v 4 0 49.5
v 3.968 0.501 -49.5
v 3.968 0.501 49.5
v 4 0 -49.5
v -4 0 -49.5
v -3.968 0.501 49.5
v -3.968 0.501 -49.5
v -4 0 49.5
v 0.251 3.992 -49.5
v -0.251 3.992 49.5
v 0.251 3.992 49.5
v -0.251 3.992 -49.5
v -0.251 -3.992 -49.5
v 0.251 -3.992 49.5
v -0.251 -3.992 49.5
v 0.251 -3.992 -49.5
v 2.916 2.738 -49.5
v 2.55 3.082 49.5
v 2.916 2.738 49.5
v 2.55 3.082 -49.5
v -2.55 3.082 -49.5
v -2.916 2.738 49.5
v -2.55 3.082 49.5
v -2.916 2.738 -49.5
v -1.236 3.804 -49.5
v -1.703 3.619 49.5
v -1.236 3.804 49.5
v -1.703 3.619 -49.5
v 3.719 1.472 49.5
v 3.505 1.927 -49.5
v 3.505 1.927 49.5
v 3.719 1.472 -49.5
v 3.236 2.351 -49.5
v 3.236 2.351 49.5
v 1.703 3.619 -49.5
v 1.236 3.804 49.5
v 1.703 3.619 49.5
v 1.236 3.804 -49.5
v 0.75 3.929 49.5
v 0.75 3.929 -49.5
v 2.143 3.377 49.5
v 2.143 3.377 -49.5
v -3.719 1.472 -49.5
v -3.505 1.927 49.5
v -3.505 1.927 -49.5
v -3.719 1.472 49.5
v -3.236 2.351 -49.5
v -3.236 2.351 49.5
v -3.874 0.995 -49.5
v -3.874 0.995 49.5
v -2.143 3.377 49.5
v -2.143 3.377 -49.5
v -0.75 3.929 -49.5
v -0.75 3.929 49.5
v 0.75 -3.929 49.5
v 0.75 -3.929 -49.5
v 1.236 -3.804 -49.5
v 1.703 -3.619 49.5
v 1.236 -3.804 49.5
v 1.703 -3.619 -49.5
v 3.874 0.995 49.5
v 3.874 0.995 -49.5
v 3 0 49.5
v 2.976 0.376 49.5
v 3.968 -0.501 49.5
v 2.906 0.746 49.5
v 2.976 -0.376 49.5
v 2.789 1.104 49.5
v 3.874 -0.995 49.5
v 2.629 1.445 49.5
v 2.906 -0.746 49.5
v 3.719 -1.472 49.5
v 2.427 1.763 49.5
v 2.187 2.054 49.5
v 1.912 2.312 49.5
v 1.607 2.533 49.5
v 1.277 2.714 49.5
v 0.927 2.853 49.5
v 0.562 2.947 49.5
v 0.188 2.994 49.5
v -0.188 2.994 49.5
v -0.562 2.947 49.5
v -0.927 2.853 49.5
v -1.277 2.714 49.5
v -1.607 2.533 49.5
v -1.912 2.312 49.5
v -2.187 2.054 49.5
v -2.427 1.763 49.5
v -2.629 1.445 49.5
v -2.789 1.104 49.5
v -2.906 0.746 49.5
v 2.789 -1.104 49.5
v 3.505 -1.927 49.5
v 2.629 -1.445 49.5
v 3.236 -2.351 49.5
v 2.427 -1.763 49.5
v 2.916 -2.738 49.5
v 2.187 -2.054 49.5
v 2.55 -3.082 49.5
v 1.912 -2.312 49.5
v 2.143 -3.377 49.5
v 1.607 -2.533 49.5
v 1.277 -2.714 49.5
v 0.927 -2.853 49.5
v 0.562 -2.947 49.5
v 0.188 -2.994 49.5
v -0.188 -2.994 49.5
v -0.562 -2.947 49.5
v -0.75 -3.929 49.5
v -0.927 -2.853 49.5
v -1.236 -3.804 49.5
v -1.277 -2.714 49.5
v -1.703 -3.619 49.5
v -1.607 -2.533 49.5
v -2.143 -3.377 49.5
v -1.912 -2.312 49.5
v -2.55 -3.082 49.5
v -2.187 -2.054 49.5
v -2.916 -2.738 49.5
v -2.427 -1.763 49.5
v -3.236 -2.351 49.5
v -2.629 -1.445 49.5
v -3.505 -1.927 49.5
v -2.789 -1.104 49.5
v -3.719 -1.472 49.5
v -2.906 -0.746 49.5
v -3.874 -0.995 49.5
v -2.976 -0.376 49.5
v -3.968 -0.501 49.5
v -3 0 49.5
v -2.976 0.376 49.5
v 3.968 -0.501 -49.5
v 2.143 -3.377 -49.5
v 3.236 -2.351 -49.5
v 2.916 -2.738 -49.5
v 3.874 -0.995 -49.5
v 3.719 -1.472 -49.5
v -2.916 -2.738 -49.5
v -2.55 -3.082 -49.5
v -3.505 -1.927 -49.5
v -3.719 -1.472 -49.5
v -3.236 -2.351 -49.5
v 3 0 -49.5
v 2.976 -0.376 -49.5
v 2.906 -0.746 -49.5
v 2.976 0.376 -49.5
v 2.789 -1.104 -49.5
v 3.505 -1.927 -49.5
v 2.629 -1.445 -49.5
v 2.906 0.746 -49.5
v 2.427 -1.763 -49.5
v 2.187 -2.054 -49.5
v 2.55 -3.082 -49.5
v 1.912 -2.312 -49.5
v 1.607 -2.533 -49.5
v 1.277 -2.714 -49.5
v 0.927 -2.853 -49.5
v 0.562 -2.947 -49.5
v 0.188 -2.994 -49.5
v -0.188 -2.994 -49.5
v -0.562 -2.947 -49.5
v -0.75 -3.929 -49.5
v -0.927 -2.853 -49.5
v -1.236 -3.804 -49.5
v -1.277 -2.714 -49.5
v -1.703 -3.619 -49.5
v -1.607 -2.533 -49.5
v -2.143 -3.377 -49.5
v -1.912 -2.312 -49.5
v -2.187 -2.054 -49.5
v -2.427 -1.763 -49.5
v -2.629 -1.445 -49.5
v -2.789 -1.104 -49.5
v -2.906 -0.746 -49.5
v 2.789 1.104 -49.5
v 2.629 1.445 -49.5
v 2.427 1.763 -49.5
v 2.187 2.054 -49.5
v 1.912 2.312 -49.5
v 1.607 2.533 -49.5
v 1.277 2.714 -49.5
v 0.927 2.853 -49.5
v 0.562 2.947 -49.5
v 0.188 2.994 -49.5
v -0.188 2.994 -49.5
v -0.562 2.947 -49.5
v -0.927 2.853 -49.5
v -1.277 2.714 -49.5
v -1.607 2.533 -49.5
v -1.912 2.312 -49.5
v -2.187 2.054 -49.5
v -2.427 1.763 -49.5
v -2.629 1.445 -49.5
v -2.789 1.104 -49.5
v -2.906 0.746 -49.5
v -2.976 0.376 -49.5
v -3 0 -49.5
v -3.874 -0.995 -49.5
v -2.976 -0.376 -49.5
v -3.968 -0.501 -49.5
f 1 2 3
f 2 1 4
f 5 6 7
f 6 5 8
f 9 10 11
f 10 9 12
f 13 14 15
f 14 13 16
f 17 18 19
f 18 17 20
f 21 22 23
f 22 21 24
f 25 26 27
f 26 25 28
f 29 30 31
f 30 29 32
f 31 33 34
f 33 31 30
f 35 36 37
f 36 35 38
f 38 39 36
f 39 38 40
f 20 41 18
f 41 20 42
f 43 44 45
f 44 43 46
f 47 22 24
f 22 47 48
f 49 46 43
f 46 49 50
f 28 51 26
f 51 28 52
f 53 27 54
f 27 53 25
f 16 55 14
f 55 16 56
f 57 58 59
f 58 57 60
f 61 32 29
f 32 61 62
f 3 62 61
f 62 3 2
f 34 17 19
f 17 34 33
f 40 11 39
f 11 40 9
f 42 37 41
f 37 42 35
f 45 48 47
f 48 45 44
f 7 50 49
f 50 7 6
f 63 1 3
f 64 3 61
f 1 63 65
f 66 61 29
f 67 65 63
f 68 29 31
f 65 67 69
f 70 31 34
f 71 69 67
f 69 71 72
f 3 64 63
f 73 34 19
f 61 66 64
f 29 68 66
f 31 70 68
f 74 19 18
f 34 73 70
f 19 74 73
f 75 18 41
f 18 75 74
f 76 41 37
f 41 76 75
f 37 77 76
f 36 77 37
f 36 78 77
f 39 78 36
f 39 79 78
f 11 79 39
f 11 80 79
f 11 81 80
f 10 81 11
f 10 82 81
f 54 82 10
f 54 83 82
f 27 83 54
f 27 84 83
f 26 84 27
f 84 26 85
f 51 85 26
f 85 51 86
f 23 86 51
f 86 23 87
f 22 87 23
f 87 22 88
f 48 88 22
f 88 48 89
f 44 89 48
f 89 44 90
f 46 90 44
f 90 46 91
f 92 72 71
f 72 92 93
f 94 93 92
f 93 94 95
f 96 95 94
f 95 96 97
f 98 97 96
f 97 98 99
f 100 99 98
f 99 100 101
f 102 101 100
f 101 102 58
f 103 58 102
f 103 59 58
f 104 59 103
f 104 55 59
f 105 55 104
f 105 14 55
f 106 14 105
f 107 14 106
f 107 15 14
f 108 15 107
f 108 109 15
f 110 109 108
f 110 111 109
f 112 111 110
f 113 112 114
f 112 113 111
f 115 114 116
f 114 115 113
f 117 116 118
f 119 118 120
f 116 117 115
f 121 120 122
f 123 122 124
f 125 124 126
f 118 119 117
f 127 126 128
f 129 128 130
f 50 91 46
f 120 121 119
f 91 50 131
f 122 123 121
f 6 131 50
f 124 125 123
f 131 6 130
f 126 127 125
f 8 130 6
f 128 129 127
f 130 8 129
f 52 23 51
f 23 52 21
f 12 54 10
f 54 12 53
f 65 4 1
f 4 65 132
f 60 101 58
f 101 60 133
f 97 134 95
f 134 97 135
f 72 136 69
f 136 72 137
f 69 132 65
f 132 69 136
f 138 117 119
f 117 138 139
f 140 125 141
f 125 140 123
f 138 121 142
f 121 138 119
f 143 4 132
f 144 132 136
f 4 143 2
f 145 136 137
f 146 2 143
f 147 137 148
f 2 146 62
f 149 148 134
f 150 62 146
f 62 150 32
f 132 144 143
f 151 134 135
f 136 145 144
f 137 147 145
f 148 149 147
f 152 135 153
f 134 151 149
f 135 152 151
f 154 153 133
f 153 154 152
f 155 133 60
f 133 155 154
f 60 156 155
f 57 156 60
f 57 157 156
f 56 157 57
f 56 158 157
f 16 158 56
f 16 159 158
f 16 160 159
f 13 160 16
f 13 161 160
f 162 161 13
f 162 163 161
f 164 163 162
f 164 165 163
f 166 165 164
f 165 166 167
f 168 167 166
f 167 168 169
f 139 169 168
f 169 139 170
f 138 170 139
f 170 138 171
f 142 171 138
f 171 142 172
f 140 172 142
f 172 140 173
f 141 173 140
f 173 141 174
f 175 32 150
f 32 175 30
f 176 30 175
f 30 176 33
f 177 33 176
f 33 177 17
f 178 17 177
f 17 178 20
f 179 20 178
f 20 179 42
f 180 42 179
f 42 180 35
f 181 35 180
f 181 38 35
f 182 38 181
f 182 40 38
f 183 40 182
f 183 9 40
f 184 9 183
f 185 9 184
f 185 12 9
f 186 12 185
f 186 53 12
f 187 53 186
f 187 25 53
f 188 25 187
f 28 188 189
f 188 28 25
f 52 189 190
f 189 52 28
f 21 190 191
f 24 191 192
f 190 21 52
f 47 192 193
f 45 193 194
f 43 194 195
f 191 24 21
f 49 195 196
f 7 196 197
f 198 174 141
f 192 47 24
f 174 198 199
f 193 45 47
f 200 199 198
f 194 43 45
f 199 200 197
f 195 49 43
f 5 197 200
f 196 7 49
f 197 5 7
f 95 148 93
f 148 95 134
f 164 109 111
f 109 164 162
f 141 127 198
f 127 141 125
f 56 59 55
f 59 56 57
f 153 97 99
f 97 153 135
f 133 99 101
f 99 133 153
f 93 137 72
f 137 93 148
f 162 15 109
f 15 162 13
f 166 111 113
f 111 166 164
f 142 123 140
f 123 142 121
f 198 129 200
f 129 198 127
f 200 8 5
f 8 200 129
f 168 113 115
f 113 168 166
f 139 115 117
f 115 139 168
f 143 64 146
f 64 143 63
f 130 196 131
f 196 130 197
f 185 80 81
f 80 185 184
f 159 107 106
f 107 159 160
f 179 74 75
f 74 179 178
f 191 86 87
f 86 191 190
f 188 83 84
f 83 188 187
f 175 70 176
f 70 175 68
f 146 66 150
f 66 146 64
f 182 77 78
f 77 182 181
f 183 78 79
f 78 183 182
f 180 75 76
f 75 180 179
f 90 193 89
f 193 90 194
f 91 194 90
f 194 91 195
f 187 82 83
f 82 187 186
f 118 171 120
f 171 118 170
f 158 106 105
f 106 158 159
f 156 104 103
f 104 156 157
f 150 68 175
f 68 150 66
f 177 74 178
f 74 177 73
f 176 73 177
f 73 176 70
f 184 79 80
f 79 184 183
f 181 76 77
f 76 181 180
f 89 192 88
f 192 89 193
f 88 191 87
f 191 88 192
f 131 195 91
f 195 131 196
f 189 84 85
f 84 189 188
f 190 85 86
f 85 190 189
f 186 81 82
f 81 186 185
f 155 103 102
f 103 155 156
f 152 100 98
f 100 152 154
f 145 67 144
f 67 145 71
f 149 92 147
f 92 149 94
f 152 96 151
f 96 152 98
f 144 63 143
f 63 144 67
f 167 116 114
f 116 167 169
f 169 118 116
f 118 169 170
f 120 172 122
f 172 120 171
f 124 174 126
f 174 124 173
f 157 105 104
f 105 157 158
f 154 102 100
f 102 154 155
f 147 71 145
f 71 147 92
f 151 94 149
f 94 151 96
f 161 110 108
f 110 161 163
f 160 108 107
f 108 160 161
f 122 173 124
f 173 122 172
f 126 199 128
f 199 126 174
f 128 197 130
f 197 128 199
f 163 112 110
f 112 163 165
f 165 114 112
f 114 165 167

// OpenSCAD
$fn = 50;


difference() {
	union() {
		translate(v = [0, 0, -49.5000000000]) {
			cylinder(h = 99, r = 4.0000000000);
		}
	}
	union() {
		translate(v = [0, 0, -100.0000000000]) {
			cylinder(h = 200, r = 3);
		}
	}
}
